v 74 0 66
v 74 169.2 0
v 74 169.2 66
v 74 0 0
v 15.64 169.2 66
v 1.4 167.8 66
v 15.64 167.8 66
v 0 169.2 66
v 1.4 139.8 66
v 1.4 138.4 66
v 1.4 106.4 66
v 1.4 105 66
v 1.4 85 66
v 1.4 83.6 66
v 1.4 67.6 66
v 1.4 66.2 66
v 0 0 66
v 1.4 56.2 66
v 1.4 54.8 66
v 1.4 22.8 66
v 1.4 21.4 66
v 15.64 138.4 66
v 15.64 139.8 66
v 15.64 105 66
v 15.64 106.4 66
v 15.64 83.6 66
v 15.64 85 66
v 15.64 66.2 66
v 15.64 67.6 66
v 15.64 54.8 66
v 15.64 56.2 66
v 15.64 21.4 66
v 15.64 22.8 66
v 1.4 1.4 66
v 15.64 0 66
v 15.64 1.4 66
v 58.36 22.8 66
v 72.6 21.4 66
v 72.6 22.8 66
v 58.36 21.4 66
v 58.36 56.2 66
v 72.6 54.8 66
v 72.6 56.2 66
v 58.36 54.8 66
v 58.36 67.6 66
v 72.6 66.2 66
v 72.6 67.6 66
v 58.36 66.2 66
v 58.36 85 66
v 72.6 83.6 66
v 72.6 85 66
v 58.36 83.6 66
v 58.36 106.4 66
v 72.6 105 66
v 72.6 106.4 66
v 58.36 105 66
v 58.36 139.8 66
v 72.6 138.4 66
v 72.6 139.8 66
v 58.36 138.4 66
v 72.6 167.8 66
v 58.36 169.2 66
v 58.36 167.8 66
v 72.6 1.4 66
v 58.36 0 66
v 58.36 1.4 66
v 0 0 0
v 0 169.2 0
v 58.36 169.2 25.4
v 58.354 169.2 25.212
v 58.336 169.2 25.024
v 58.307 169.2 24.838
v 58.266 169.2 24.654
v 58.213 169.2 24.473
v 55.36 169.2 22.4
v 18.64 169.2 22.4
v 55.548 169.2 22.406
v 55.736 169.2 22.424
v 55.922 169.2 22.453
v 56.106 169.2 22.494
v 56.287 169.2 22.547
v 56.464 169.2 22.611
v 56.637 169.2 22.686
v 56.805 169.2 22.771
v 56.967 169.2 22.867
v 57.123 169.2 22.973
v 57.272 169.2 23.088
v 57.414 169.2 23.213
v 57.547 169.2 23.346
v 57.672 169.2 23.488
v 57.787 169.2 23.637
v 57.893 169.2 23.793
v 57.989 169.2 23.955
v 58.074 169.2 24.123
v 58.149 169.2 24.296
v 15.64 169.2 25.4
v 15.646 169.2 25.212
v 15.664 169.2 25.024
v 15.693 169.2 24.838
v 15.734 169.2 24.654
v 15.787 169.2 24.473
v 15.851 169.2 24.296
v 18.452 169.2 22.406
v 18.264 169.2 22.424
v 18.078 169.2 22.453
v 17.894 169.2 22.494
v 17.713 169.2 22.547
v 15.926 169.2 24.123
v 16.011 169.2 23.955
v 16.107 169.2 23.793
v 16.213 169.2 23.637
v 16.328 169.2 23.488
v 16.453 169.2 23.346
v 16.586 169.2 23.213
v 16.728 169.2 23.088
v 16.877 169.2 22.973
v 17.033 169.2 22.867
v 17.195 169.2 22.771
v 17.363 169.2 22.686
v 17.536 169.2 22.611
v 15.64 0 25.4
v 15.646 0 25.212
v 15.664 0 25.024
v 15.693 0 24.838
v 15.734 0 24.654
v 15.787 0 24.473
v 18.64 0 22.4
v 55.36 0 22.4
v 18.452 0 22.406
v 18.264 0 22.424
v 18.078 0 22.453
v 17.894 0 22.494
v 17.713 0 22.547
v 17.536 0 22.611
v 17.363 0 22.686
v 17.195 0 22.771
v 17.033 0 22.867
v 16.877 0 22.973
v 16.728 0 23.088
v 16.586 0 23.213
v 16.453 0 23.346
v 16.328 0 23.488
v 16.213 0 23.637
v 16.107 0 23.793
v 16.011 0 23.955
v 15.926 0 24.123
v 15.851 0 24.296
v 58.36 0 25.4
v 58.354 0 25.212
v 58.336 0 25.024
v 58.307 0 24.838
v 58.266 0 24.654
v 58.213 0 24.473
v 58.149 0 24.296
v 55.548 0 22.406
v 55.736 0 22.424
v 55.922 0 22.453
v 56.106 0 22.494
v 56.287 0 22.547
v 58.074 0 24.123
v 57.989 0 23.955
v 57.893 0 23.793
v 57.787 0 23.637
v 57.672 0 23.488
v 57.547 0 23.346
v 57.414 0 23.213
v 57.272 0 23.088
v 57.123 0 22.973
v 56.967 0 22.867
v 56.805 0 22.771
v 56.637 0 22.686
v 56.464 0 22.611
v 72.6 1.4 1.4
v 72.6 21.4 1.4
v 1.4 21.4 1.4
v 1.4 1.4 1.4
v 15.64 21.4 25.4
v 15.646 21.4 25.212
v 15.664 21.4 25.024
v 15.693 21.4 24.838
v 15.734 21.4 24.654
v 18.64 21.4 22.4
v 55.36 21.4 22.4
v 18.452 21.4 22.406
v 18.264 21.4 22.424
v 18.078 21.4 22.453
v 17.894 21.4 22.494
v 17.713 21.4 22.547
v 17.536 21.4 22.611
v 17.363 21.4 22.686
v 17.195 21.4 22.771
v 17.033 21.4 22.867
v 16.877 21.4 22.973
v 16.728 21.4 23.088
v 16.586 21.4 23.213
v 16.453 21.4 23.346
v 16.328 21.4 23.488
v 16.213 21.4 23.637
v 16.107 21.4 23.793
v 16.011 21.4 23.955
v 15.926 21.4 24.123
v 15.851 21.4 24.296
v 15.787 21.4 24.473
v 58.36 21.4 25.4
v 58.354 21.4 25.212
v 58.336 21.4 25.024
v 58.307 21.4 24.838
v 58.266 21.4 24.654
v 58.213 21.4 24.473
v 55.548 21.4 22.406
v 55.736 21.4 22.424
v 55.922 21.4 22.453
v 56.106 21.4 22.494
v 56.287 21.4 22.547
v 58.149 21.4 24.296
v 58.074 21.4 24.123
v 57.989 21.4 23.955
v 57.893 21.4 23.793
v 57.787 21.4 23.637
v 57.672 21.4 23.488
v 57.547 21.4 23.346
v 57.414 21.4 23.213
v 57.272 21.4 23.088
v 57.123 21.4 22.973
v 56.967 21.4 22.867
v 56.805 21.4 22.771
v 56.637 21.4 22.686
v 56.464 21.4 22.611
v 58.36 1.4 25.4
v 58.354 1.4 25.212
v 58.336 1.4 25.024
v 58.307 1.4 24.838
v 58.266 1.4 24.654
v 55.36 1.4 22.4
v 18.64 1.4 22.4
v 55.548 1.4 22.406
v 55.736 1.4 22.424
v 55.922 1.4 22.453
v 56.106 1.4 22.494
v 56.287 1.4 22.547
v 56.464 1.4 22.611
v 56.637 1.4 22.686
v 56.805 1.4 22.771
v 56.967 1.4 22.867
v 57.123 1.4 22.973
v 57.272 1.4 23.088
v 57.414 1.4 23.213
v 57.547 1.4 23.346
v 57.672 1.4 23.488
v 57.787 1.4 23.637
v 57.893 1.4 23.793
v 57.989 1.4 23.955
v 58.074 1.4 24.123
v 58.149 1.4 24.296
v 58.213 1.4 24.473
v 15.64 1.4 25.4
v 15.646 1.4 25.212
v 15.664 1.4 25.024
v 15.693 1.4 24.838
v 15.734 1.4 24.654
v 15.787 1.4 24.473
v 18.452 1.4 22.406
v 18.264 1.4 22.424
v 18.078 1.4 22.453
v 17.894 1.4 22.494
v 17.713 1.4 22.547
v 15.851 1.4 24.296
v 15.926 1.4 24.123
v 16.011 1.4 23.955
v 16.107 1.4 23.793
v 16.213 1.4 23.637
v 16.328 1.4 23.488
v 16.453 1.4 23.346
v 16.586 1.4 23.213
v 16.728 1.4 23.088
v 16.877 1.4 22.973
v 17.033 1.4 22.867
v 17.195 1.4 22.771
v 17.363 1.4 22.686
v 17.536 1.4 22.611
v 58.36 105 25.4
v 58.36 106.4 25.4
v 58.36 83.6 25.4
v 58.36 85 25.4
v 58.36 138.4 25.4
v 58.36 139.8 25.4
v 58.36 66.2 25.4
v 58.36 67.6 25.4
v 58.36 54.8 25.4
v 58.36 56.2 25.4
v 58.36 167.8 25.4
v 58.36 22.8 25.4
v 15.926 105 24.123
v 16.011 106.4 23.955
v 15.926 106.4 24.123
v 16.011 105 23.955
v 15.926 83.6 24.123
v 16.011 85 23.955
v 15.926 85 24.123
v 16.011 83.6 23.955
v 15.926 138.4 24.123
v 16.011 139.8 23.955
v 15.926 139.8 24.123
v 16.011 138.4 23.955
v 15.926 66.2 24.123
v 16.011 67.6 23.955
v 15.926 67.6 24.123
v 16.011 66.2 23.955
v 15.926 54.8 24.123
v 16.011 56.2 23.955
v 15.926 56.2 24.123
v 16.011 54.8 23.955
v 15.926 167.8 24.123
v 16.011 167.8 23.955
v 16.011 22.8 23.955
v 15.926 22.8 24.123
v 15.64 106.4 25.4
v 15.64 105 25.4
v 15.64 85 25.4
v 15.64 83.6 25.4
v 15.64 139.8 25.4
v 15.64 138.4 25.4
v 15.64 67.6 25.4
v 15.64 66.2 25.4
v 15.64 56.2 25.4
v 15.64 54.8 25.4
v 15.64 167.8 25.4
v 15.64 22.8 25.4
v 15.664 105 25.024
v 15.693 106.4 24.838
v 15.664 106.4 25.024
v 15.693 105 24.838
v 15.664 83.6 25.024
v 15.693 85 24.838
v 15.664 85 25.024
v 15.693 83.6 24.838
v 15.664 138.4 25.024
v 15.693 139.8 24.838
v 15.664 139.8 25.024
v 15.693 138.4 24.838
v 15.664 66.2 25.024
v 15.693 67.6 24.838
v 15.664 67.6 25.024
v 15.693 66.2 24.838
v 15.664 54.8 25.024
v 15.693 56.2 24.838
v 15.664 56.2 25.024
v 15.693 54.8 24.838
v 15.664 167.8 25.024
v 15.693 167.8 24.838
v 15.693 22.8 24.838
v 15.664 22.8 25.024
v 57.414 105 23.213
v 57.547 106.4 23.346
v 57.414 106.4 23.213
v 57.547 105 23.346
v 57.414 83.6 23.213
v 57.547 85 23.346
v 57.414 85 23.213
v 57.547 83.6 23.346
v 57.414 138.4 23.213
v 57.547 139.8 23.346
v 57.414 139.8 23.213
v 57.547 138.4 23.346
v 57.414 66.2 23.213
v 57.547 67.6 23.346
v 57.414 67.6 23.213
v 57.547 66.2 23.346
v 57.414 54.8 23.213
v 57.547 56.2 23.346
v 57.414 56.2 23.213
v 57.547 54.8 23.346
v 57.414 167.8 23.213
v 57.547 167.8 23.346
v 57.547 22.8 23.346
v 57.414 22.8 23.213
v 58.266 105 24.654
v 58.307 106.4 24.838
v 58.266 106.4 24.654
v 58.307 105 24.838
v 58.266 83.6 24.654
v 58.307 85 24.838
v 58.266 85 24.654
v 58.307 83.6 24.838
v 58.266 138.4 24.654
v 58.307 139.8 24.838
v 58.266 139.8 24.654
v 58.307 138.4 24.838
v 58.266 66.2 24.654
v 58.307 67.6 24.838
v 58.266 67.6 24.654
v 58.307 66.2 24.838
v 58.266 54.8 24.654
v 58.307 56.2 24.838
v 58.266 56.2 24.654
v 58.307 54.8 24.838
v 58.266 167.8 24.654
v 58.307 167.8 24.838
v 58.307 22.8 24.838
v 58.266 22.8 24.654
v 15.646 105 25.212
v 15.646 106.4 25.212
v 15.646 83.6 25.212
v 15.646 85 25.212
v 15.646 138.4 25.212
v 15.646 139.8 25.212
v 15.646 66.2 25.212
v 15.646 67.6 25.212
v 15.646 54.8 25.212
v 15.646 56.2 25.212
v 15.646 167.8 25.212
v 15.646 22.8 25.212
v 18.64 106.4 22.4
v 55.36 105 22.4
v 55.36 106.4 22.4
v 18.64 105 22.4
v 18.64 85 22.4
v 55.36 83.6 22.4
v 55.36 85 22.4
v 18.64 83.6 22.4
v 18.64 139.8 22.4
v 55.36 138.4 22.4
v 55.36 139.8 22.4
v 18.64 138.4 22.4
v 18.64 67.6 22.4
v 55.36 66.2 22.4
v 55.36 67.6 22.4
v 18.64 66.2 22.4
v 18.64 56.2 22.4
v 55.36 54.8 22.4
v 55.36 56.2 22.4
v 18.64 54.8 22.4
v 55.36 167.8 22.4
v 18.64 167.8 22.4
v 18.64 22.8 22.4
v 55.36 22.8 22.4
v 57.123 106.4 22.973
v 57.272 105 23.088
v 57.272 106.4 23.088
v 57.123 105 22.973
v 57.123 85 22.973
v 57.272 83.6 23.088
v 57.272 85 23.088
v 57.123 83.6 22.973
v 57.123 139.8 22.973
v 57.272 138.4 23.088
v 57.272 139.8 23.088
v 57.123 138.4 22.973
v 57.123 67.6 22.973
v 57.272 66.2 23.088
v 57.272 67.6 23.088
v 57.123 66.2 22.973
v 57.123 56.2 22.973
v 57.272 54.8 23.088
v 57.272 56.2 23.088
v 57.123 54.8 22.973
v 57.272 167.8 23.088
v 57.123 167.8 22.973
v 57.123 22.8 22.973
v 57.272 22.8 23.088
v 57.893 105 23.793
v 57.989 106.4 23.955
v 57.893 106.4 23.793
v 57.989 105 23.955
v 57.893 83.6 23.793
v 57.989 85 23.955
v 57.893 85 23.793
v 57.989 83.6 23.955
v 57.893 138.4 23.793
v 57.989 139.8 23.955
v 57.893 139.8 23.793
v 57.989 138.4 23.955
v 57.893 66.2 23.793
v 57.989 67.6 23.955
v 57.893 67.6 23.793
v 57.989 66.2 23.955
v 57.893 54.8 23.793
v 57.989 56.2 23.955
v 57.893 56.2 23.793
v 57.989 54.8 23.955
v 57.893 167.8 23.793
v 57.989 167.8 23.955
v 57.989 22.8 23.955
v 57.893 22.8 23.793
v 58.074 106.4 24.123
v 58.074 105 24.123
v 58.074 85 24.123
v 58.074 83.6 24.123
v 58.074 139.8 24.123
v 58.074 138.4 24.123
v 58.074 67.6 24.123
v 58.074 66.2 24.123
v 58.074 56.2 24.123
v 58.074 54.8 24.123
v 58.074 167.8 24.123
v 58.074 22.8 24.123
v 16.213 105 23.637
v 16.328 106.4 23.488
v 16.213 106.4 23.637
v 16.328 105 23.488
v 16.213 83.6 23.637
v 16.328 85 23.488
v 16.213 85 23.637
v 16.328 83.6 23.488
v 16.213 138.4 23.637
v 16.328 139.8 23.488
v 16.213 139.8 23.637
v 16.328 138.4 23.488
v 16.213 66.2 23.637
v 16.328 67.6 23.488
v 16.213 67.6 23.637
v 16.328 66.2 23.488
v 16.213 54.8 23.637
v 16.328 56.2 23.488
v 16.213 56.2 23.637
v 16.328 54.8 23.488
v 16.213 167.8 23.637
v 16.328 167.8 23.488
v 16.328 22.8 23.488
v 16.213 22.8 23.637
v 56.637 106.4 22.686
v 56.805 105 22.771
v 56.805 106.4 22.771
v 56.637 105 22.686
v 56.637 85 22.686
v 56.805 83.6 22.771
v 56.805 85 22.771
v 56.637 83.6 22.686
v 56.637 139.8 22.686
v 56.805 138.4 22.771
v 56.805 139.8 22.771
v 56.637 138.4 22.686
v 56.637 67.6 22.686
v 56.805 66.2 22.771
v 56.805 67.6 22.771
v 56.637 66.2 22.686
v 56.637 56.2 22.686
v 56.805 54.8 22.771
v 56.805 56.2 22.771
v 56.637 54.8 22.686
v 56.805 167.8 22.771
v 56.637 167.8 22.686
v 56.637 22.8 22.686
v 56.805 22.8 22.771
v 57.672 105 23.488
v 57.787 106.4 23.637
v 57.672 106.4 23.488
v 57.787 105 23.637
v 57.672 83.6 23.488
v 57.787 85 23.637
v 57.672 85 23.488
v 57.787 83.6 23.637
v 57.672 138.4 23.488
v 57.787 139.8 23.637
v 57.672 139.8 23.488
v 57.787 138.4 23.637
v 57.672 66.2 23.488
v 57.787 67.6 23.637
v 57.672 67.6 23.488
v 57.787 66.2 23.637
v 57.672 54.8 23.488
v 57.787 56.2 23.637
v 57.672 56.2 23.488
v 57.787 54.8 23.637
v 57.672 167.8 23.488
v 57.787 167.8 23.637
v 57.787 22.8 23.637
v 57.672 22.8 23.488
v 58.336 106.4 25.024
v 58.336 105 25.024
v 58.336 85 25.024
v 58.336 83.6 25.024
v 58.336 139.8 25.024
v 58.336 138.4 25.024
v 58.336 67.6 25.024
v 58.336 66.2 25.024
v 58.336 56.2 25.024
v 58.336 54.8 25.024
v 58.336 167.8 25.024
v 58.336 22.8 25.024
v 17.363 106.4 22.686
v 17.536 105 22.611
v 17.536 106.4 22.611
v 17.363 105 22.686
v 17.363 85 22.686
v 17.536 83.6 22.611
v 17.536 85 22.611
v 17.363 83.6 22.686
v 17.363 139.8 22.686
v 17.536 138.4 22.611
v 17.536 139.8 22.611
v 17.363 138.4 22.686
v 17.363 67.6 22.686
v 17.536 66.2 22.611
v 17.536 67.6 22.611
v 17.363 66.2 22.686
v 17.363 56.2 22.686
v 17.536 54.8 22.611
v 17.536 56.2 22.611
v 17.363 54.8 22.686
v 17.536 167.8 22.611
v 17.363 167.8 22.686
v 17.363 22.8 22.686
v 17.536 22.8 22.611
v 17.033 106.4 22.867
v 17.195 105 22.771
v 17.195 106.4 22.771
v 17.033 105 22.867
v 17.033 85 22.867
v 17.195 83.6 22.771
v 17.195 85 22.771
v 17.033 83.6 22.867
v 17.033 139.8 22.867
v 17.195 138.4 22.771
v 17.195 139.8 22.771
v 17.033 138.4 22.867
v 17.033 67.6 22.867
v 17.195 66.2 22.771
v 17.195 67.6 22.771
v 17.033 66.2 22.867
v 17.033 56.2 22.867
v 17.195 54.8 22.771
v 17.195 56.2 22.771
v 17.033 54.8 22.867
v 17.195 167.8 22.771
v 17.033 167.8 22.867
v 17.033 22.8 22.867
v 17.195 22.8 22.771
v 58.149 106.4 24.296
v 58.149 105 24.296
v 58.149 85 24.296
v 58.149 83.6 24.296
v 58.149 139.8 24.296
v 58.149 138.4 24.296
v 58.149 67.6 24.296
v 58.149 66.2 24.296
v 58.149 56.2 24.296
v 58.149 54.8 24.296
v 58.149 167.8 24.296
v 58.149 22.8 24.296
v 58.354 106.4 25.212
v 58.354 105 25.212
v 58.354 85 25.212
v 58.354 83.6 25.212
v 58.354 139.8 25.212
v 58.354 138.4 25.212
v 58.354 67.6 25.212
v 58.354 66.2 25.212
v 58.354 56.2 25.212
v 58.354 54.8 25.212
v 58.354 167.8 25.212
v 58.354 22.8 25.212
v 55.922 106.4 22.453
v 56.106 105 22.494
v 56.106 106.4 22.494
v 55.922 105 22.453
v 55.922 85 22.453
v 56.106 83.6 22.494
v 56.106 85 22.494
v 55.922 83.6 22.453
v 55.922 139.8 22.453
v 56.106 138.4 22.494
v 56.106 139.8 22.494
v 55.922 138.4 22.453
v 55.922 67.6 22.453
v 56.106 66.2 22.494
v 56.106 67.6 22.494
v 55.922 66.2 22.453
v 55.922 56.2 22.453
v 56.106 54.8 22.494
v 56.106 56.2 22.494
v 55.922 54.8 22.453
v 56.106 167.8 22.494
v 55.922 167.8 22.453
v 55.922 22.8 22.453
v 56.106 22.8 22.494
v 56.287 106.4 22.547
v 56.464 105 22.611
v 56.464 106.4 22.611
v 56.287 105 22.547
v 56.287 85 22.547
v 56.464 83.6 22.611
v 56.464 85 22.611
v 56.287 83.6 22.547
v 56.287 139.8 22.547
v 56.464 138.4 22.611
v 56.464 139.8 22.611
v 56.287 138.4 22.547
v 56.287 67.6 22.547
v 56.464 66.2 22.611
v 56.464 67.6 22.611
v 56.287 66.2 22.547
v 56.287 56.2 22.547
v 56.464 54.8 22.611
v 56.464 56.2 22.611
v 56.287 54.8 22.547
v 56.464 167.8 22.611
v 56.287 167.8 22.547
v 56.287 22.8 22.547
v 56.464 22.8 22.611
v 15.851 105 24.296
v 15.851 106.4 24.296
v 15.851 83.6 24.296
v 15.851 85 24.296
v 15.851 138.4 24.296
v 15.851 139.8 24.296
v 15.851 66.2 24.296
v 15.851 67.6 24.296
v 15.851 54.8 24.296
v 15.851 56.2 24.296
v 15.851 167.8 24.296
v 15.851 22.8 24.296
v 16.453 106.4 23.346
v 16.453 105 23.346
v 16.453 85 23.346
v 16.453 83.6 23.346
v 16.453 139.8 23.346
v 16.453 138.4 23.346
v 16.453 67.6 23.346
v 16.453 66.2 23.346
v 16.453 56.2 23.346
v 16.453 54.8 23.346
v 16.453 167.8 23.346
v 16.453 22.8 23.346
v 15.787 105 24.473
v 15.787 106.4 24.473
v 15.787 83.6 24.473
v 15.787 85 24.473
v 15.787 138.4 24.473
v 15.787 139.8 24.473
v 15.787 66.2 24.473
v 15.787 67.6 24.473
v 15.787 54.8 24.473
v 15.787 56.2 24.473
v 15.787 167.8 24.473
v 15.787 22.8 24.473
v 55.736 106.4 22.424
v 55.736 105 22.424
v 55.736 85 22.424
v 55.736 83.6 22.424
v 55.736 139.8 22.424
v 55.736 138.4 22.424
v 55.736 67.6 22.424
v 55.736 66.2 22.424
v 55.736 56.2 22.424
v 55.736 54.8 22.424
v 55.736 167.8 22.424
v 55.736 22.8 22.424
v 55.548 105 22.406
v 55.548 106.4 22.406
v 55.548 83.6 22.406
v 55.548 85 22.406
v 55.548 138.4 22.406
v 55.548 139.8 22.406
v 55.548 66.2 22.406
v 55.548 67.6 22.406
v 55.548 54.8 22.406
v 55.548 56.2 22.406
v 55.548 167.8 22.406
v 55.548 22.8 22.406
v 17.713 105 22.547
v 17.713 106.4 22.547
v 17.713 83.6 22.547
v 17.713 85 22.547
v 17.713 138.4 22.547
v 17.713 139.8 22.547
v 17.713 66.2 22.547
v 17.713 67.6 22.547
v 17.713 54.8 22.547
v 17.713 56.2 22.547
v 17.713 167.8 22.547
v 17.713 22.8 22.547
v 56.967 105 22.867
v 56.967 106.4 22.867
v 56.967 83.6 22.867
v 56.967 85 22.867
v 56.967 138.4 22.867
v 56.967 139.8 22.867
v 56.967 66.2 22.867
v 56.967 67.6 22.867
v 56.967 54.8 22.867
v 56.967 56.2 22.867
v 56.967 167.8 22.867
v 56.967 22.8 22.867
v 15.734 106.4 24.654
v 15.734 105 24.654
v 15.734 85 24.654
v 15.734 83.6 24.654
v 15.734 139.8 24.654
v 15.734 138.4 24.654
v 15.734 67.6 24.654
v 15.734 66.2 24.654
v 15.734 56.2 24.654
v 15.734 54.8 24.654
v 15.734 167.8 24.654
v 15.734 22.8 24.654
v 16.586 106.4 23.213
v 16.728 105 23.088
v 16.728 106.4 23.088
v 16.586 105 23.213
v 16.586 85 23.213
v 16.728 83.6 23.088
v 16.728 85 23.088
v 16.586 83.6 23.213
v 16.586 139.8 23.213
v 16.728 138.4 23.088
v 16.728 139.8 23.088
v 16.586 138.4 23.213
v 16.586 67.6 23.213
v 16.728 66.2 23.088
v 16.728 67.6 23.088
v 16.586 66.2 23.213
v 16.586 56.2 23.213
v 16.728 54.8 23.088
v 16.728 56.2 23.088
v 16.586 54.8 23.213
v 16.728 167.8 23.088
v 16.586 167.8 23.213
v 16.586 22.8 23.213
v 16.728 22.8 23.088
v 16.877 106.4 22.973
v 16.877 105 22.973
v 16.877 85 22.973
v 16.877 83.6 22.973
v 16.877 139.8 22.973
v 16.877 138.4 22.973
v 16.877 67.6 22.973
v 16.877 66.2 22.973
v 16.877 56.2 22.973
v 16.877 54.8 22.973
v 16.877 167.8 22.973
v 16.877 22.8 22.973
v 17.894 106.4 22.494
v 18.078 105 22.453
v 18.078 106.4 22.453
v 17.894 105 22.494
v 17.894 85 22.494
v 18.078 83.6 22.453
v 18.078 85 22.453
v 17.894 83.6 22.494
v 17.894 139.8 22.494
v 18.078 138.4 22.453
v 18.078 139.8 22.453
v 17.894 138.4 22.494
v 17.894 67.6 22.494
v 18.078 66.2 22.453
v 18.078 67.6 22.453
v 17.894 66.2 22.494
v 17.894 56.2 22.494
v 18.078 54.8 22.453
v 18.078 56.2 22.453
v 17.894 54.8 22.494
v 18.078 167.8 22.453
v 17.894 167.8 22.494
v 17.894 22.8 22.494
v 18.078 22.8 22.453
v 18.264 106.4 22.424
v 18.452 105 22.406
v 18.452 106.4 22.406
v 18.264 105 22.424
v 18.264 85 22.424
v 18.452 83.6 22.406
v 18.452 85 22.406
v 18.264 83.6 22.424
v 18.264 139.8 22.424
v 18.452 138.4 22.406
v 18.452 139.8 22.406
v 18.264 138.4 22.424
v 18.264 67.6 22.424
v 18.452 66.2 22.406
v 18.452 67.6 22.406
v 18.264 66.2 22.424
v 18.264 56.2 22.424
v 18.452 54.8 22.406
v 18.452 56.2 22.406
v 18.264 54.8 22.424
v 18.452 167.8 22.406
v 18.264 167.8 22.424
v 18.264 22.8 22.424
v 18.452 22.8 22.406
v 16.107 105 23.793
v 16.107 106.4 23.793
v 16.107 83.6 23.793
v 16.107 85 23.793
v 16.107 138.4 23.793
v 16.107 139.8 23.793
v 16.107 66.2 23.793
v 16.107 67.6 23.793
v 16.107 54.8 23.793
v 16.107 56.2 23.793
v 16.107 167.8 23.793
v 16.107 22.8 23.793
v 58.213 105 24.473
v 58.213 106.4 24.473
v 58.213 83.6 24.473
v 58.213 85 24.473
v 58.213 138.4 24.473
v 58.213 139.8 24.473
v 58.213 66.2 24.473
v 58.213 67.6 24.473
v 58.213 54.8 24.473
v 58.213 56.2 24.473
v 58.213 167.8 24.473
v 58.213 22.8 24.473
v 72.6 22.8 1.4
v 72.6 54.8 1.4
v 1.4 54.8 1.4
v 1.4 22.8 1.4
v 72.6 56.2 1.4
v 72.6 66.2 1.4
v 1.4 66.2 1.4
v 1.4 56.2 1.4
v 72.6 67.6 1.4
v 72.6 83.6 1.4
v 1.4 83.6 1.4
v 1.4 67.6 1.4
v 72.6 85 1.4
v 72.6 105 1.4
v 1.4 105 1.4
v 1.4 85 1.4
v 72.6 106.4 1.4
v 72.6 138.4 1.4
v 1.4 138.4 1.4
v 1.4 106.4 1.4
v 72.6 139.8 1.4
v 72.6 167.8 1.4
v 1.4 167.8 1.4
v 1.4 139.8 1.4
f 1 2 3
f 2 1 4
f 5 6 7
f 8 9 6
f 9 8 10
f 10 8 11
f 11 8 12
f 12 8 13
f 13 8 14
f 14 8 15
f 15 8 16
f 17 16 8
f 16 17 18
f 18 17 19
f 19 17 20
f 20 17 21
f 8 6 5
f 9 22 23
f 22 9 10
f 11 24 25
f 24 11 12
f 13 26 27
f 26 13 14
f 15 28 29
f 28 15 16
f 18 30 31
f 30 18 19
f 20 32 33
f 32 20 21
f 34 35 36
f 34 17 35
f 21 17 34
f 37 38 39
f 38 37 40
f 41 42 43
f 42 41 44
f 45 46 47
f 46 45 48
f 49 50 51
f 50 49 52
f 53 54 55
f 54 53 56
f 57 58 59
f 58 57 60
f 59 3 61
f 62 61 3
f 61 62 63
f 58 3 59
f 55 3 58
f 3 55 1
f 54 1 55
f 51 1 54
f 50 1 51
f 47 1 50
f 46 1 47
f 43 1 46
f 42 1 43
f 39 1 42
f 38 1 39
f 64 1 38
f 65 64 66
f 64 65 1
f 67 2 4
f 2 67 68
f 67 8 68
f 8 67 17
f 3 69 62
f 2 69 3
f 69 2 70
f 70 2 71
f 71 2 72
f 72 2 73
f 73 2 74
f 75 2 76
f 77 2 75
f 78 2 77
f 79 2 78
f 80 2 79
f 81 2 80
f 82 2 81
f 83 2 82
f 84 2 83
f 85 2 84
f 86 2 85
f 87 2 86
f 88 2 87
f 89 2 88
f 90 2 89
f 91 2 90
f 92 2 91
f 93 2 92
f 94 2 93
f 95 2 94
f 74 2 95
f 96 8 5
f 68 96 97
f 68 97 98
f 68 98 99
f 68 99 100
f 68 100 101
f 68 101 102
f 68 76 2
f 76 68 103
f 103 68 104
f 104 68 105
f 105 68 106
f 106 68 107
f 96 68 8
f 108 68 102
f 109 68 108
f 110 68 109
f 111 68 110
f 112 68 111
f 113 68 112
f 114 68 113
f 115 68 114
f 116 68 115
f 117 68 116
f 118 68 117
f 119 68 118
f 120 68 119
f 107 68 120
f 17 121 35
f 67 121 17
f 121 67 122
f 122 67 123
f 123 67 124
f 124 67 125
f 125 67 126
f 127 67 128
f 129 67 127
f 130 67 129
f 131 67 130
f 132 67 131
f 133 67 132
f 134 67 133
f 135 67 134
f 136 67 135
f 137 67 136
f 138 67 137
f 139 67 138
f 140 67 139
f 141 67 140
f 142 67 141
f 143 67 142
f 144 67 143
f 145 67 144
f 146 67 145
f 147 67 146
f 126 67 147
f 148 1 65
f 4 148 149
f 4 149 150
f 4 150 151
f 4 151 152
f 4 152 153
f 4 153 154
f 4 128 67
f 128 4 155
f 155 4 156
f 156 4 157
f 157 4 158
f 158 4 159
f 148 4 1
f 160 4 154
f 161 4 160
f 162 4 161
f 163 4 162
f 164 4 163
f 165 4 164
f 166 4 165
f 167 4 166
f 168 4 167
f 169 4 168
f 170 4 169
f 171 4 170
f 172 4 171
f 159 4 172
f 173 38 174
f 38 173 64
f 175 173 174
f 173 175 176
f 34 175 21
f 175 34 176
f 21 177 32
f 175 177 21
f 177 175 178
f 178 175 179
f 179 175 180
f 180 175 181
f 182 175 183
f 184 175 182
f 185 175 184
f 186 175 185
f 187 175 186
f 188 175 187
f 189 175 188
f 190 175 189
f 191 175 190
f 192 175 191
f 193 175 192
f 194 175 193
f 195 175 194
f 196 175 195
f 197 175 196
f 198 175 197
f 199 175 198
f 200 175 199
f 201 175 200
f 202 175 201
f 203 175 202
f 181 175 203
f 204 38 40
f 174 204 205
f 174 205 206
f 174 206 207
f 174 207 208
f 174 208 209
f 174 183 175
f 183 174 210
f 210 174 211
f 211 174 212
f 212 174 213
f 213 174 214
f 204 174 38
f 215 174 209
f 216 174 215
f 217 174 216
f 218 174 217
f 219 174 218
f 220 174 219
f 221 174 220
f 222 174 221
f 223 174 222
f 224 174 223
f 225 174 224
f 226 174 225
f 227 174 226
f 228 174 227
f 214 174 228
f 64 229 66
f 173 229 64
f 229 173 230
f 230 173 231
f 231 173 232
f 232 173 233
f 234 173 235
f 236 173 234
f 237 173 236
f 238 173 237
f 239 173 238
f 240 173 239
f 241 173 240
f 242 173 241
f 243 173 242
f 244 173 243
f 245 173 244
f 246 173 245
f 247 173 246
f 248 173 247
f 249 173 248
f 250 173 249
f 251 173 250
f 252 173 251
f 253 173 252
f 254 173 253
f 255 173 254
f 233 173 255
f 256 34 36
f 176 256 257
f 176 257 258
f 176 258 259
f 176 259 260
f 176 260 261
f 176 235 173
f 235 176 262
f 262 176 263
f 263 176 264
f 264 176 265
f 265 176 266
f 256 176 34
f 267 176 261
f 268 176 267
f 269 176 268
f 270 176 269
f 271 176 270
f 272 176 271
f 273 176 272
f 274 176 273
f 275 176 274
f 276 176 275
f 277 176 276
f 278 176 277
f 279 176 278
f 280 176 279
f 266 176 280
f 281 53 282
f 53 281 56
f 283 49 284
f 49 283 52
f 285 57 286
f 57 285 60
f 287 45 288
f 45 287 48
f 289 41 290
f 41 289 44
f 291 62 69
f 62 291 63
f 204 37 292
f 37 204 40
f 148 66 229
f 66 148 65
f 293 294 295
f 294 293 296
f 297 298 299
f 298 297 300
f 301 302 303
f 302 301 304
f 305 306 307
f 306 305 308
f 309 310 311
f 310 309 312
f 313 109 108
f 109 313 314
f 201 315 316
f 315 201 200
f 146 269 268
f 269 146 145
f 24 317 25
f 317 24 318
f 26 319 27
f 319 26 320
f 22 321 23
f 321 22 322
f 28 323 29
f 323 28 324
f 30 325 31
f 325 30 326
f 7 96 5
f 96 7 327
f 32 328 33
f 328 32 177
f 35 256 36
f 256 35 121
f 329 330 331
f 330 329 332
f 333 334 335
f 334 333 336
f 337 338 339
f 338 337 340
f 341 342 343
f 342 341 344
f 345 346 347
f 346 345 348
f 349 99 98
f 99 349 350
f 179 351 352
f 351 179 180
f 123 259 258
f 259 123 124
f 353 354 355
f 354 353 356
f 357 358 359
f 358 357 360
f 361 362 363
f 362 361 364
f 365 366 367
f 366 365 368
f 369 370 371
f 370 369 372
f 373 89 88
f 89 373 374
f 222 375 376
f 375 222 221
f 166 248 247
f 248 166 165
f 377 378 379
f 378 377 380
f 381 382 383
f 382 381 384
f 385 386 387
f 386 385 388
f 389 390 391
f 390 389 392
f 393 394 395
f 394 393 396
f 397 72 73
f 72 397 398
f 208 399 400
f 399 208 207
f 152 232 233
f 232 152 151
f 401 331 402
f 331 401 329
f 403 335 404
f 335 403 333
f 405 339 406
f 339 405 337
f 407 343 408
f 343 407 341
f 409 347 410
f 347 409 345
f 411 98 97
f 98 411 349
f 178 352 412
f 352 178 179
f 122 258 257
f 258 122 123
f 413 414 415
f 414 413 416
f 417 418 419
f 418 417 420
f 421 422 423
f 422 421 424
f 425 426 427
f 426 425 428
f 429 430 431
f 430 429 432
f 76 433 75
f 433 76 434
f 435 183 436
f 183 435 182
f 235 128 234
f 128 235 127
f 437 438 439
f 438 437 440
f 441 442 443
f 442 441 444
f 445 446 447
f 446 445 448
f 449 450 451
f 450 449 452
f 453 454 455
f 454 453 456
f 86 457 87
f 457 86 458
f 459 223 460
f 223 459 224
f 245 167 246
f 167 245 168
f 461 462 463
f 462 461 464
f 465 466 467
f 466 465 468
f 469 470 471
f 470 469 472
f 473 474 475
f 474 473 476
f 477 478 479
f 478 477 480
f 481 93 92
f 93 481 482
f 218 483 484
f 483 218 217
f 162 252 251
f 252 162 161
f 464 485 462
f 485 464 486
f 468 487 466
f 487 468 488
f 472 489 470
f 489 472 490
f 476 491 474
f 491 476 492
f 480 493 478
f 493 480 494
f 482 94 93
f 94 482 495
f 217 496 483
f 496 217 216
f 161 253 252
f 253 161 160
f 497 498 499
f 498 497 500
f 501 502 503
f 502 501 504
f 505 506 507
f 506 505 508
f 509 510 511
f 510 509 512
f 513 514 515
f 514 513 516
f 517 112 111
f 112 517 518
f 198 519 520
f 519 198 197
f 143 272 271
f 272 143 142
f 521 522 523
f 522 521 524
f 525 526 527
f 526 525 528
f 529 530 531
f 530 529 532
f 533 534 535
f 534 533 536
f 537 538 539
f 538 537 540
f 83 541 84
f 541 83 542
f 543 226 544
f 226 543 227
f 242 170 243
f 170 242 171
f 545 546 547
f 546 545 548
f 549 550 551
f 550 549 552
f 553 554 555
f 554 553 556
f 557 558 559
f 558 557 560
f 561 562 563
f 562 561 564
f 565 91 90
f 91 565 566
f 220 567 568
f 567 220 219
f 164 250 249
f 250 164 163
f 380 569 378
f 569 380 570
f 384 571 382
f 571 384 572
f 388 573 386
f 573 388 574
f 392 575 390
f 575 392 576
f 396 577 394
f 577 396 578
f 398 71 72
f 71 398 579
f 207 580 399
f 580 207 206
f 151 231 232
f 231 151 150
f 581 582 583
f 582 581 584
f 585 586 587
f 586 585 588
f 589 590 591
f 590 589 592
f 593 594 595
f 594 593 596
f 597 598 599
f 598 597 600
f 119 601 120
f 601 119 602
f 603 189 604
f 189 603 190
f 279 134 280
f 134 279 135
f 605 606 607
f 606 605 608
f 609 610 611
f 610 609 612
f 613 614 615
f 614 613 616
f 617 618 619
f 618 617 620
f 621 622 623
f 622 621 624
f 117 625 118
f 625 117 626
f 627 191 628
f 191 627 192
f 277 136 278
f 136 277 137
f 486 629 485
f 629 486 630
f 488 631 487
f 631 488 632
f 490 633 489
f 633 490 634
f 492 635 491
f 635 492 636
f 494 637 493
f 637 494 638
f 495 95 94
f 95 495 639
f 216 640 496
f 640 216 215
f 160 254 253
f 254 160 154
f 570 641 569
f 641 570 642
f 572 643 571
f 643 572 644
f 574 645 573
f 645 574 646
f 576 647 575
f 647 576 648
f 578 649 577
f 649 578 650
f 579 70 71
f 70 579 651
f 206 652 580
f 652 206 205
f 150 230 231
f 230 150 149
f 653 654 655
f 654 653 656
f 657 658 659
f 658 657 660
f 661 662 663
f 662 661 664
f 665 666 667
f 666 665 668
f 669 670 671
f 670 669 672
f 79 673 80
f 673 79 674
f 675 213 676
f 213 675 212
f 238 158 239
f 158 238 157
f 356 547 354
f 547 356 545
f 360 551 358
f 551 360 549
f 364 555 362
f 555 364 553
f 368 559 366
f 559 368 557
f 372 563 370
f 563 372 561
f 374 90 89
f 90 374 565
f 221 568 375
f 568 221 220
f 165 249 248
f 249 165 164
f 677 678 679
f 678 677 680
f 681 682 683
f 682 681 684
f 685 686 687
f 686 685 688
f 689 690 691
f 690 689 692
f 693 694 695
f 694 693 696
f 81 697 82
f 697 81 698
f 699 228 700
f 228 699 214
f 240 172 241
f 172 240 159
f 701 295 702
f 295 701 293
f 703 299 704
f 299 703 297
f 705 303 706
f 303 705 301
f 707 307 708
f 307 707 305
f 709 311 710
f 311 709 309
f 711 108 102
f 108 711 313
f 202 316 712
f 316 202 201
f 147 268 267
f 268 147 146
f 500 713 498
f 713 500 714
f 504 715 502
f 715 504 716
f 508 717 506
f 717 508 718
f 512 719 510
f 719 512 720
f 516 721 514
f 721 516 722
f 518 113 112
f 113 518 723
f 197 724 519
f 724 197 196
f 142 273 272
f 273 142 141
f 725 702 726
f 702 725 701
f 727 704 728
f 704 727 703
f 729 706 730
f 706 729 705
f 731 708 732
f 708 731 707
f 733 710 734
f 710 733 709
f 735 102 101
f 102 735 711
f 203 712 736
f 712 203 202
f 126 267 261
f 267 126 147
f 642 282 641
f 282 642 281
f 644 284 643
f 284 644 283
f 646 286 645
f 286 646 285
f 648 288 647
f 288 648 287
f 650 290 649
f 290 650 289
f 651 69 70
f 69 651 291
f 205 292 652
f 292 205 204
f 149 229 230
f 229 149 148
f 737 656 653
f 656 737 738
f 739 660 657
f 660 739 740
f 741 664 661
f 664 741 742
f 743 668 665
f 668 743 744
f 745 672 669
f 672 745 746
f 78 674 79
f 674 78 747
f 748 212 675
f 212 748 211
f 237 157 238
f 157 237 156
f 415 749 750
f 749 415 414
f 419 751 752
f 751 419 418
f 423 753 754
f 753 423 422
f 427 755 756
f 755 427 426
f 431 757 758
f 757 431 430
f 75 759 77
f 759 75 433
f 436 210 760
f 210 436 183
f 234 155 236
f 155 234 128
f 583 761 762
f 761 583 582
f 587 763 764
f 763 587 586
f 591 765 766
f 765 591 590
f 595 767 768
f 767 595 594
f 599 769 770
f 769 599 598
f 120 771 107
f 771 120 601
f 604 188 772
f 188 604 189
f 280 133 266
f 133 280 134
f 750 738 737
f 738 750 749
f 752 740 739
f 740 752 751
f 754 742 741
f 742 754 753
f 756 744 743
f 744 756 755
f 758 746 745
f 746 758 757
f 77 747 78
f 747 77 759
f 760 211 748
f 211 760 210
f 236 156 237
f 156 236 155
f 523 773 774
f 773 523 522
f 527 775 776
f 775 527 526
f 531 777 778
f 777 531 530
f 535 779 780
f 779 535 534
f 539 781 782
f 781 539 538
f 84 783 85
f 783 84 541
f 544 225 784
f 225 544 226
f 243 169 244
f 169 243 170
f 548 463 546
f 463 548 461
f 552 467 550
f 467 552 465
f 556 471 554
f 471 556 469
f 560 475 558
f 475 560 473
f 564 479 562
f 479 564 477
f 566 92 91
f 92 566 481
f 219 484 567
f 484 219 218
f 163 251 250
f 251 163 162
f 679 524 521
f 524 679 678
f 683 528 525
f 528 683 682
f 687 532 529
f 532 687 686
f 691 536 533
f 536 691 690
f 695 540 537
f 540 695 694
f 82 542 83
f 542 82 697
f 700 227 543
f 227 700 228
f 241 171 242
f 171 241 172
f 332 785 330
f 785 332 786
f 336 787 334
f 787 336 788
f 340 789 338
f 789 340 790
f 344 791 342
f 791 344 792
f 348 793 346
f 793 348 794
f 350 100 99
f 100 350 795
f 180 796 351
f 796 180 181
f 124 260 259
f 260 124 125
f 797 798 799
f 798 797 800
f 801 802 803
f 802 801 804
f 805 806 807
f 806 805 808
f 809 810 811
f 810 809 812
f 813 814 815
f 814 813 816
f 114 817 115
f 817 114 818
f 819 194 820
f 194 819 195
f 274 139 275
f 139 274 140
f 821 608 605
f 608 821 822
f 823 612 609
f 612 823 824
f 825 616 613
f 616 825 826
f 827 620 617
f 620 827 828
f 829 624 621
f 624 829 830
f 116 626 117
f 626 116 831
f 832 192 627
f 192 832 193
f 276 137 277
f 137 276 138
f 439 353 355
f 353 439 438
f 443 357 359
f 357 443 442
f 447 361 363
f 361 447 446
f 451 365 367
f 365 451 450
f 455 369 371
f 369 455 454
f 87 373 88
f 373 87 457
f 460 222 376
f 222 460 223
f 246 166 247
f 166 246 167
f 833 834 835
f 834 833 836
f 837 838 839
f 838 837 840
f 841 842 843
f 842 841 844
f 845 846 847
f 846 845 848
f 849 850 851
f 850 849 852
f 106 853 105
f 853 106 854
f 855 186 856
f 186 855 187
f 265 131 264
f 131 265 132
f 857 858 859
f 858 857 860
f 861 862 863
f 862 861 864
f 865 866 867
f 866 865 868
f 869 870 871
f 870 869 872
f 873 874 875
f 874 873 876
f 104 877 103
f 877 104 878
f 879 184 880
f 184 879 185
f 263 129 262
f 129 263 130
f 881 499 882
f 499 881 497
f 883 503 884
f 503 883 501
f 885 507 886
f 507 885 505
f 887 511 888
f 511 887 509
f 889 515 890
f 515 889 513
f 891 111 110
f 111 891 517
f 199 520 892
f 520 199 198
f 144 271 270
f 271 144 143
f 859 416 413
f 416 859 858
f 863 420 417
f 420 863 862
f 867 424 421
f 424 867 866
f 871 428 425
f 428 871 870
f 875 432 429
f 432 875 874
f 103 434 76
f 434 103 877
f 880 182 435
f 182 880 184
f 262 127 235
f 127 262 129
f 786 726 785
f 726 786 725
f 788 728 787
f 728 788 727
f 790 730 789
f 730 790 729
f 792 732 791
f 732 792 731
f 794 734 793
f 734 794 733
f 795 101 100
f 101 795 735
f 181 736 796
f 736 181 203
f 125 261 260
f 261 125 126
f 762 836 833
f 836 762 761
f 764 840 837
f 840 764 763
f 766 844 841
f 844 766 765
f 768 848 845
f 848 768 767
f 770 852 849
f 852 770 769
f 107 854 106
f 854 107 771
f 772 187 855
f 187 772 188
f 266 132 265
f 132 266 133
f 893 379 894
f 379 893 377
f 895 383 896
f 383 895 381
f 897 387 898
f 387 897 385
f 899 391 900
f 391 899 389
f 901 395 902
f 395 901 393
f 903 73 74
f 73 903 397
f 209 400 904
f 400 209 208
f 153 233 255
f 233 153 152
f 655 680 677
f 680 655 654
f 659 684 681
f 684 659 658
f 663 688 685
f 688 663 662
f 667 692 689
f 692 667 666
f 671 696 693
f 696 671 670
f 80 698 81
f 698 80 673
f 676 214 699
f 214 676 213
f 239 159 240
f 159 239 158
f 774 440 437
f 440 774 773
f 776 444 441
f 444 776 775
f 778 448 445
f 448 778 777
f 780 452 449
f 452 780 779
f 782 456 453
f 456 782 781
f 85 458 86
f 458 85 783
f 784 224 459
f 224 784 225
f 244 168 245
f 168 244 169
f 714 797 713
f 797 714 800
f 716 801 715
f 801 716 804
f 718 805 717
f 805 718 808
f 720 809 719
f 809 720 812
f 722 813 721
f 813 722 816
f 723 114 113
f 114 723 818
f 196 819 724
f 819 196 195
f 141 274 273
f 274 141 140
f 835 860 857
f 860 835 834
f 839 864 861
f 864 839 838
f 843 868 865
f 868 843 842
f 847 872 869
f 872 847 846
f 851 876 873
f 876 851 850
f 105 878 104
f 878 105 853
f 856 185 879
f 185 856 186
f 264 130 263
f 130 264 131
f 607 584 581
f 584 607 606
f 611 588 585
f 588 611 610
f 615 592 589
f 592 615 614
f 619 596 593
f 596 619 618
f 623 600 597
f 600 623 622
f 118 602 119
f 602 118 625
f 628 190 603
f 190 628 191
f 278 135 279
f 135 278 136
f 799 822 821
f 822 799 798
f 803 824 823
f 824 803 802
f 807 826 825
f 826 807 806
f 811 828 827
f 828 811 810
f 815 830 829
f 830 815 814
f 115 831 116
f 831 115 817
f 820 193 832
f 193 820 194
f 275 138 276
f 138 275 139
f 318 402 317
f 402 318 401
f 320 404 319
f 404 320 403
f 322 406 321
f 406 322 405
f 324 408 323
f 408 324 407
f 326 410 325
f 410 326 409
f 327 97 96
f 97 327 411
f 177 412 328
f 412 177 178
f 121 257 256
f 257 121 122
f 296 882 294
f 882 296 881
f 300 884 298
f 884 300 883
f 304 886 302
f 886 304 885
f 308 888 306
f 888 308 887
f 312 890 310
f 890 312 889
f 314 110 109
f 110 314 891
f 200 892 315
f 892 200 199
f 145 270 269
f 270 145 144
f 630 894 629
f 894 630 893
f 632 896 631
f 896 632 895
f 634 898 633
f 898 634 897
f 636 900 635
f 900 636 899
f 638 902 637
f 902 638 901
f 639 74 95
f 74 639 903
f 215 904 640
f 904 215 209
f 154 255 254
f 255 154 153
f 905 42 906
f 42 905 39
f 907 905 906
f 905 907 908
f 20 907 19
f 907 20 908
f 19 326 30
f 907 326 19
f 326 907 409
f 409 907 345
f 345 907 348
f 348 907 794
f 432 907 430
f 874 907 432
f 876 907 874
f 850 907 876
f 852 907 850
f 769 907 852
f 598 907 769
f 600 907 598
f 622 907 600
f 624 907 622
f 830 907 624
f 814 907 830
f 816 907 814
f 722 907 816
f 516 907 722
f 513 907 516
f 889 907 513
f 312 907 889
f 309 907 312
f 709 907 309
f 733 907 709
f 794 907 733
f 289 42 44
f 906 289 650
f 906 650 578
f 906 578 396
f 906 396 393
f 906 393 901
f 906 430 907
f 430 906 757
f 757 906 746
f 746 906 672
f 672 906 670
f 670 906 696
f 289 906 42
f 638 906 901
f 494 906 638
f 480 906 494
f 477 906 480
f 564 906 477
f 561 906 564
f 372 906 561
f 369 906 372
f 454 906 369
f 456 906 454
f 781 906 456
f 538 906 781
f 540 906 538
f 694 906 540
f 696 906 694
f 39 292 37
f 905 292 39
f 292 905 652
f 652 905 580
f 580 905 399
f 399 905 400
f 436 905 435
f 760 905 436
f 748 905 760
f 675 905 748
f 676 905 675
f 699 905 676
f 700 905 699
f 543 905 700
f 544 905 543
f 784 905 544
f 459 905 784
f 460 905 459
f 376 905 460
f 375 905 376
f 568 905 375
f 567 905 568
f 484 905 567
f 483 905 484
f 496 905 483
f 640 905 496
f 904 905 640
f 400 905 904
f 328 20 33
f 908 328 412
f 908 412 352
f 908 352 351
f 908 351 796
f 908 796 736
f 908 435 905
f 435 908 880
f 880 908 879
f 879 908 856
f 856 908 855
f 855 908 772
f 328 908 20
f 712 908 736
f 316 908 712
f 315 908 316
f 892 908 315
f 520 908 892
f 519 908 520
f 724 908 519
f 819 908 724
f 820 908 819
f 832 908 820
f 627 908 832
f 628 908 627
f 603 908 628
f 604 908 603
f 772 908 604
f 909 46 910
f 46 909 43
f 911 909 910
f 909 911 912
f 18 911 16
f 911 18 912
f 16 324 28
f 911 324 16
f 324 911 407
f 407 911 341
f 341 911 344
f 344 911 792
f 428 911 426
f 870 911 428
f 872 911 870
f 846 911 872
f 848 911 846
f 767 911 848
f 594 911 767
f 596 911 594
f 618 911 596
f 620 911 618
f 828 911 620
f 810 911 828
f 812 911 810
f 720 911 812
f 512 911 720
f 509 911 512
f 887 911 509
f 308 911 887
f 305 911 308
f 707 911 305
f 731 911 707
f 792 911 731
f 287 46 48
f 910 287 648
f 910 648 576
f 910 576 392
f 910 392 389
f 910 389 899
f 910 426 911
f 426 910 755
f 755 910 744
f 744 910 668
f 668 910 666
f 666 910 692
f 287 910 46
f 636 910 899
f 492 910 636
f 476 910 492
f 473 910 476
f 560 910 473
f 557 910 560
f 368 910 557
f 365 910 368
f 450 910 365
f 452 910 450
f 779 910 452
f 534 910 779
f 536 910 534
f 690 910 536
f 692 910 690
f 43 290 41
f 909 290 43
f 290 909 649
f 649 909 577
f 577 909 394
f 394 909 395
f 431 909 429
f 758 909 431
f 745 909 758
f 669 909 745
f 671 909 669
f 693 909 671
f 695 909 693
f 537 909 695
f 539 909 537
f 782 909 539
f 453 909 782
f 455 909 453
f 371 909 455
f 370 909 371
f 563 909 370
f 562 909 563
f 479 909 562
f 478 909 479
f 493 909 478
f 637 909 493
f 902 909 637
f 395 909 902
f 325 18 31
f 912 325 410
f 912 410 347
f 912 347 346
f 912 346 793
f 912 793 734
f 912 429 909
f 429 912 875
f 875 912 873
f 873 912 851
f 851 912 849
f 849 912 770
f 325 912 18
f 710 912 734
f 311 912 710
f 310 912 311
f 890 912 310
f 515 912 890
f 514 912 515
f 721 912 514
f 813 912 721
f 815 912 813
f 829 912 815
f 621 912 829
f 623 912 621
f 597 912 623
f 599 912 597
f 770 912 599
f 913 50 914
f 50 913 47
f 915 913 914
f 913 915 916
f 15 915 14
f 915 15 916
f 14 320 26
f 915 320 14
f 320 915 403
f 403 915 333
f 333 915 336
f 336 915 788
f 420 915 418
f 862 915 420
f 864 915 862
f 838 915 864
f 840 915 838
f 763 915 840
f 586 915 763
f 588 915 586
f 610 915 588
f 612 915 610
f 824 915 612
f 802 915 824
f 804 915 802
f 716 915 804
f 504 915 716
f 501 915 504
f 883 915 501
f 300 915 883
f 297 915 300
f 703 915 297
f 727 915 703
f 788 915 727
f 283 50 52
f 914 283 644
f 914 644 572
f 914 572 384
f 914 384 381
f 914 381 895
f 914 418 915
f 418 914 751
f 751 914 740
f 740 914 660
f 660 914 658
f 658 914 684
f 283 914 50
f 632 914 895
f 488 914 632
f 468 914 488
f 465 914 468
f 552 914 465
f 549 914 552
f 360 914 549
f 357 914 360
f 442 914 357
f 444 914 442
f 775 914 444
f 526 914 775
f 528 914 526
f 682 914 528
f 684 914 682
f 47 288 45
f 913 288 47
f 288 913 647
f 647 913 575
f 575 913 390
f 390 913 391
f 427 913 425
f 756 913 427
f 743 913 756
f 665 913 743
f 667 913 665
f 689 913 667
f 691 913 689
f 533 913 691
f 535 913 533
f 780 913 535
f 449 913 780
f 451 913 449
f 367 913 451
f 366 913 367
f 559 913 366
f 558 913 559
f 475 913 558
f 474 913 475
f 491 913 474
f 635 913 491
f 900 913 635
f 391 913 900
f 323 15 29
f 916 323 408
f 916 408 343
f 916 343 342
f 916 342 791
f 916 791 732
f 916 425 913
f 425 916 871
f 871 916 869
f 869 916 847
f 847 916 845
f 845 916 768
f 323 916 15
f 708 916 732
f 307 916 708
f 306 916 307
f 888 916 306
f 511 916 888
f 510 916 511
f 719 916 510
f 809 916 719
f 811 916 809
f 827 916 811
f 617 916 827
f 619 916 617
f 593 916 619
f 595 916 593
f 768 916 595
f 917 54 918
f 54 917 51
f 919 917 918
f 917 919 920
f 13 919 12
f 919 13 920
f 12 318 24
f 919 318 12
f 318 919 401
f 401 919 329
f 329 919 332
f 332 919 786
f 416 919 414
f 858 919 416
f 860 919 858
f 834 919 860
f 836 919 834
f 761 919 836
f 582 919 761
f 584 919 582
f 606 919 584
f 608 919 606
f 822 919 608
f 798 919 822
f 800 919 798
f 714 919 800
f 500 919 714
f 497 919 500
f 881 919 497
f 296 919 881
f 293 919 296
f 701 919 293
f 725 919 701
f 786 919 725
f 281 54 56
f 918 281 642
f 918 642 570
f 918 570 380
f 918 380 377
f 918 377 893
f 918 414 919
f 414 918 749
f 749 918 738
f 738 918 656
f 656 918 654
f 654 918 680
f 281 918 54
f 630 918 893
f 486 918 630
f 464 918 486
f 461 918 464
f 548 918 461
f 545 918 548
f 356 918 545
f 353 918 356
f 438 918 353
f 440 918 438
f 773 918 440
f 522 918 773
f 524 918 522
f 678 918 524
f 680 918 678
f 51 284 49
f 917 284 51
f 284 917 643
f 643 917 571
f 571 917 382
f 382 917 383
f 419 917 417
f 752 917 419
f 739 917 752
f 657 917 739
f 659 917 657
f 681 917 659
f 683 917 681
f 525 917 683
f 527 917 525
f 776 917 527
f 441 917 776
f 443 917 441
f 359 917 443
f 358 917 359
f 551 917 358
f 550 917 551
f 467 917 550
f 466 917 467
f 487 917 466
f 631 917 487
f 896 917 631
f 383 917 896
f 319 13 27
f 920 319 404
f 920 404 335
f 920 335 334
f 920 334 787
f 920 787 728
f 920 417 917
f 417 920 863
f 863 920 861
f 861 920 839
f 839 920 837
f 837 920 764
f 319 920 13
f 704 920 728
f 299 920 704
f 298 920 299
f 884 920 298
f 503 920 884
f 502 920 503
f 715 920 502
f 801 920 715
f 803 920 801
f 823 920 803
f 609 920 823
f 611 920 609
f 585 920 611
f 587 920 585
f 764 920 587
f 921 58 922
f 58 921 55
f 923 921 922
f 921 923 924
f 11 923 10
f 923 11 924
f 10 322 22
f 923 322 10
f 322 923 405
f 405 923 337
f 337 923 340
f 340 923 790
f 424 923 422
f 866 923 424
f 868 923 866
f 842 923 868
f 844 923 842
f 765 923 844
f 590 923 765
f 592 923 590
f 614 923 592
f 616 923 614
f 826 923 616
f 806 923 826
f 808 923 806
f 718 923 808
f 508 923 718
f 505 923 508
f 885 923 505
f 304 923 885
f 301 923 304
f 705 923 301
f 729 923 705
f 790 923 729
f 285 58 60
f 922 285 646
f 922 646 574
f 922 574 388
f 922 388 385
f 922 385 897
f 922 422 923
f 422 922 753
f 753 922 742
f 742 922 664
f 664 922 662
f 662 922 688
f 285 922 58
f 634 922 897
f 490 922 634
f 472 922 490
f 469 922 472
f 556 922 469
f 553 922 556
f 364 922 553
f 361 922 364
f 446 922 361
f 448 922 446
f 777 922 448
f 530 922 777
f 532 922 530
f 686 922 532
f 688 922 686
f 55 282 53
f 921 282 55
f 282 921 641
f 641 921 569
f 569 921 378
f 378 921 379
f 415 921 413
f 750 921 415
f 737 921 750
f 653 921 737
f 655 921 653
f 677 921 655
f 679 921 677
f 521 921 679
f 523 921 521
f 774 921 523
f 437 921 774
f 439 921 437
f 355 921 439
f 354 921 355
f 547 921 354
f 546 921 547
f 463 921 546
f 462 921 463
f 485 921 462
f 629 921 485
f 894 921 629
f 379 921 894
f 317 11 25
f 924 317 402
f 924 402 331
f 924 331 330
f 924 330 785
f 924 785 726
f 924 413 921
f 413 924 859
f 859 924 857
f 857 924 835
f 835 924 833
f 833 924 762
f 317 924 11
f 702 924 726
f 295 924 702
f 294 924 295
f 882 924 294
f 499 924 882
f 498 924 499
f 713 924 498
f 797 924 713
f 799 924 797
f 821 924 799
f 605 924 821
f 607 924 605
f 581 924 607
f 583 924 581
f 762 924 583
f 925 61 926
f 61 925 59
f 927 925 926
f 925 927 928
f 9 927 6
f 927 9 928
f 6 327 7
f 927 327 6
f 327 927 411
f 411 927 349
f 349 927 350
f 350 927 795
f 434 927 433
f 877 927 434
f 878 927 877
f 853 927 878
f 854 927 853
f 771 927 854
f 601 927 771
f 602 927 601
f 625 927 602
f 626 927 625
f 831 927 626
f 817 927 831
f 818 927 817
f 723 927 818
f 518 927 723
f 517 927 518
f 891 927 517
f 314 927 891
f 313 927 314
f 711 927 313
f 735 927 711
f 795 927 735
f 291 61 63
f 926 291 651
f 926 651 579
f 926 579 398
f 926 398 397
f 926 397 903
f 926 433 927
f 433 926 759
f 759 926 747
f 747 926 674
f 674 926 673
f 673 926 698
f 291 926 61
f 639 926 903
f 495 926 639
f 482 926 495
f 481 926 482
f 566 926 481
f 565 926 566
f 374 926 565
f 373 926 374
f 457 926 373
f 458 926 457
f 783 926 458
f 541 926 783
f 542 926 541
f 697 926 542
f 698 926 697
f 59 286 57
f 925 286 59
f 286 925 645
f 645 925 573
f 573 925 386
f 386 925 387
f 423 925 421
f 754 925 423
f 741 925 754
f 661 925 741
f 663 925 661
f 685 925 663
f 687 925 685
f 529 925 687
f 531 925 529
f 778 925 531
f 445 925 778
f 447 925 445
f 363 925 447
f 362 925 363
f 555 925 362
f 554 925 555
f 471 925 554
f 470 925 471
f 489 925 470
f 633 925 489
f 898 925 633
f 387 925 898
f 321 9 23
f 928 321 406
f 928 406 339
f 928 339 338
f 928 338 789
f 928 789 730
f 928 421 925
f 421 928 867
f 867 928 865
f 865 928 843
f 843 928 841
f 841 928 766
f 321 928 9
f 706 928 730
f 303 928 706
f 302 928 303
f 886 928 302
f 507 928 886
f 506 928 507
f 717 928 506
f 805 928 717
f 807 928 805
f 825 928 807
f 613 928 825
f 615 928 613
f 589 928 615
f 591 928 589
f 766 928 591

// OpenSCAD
include <boardgame_insert_toolkit_lib.2.scad>;

// determines whether lids are output.
g_b_print_lid = true;

// determines whether boxes are output.
g_b_print_box = true; 

// Focus on one box
g_isolated_print_box = ""; 

// Used to visualize how all of the boxes fit together. 
g_b_visualization = false;          
        
// this is the outer wall thickness. 
//Default = 1.5mm
g_wall_thickness = 1.4;

// The tolerance value is extra space put between planes of the lid and box that fit together.
// Increase the tolerance to loosen the fit and decrease it to tighten it.
//
// Note that the tolerance is applied exclusively to the lid.
// So if the lid is too tight or too loose, change this value ( up for looser fit, down for tighter fit ) and 
// you only need to reprint the lid.
// 
// The exception is the stackable box, where the bottom of the box is the lid of the box below,
// in which case the tolerance also affects that box bottom.
//
g_tolerance = 0.15;

// This adjusts the position of the lid detents downward. 
// The larger the value, the bigger the gap between the lid and the box.
g_tolerance_detents_pos = 0.1;

aw_card_width = 44.0;
aw_card_height = 68.0;

aw_sleeve_factor = 2.0;

aw_base_player_cards_size = 10 * aw_sleeve_factor;
aw_base_exp_cards_size = 16 * aw_sleeve_factor;
aw_hh_demon_cards_size = 5 * aw_sleeve_factor;
aw_hh_exp_cards_size = 8 * aw_sleeve_factor;
aw_temples_player_cards_size = 10 * aw_sleeve_factor;
aw_temples_exp_cards_size = 16 * aw_sleeve_factor;
aw_german_cards_size = 24 + 4;

aw_box_x = 74.0;

// 8 * 1.5 + 20 + 32 + 10 + 16 + 20 + 32 + 28 = 170
aw_box_y =
  g_wall_thickness +
  aw_base_player_cards_size +
  g_wall_thickness +
  aw_base_exp_cards_size +
  g_wall_thickness +
  aw_hh_demon_cards_size +
  g_wall_thickness +
  aw_hh_exp_cards_size +
  g_wall_thickness +
  aw_temples_player_cards_size +
  g_wall_thickness +
  aw_temples_exp_cards_size +
  g_wall_thickness +
  aw_german_cards_size +
  g_wall_thickness;

aw_box_z = 66.0;

data =
  [
    [
      "hex tile box",
      [
        [ BOX_SIZE_XYZ, [aw_box_x, aw_box_y, aw_box_z] ],
        [ BOX_NO_LID_B, t],
        // Base player
        [
          BOX_COMPONENT,
          [
            [ CMP_NUM_COMPARTMENTS_XY, [1, 1] ],
            [
              CMP_COMPARTMENT_SIZE_XYZ,
              [
                aw_box_x - 2 * g_wall_thickness,
                aw_base_player_cards_size,
                aw_box_z - 1 * g_wall_thickness
              ]
            ],
            [ POSITION_XY, [ CENTER, 0 ] ],
            [ CMP_CUTOUT_SIDES_4B, [ t, f, f, f ] ],
            [ CMP_CUTOUT_DEPTH_PCT, 0 ],
            [ CMP_CUTOUT_WIDTH_PCT, 60 ],
            [ CMP_CUTOUT_HEIGHT_PCT, 60 ],
          ]
        ],
        // Base exp
        [
          BOX_COMPONENT,
          [
            [ CMP_NUM_COMPARTMENTS_XY, [1, 1] ],
            [
              CMP_COMPARTMENT_SIZE_XYZ,
              [
                aw_box_x - 2 * g_wall_thickness,
                aw_base_exp_cards_size,
                aw_box_z - 1 * g_wall_thickness
              ]
            ],
            [ POSITION_XY,
              [
                CENTER,
                aw_base_player_cards_size +
                  g_wall_thickness
              ]
            ],
            [ CMP_CUTOUT_SIDES_4B, [ t, f, f, f ] ],
            [ CMP_CUTOUT_DEPTH_PCT, 0 ],
            [ CMP_CUTOUT_WIDTH_PCT, 60 ],
            [ CMP_CUTOUT_HEIGHT_PCT, 60 ],
          ]
        ],                            
        // H&H demon
        [
          BOX_COMPONENT,
          [
            [ CMP_NUM_COMPARTMENTS_XY, [1, 1] ],
            [
              CMP_COMPARTMENT_SIZE_XYZ,
              [
                aw_box_x - 2 * g_wall_thickness,
                aw_hh_demon_cards_size,
                aw_box_z - 1 * g_wall_thickness
              ]
            ],
            [ POSITION_XY,
              [
                CENTER,
                aw_base_player_cards_size +
                  g_wall_thickness +
                  aw_base_exp_cards_size +
                  g_wall_thickness
              ]
            ],
            [ CMP_CUTOUT_SIDES_4B, [ t, f, f, f ] ],
            [ CMP_CUTOUT_DEPTH_PCT, 0 ],
            [ CMP_CUTOUT_WIDTH_PCT, 60 ],
            [ CMP_CUTOUT_HEIGHT_PCT, 60 ],
          ]
        ],                            
        // H&H exp
        [
          BOX_COMPONENT,
          [
            [ CMP_NUM_COMPARTMENTS_XY, [1, 1] ],
            [
              CMP_COMPARTMENT_SIZE_XYZ,
              [
                aw_box_x - 2 * g_wall_thickness,
                aw_hh_exp_cards_size,
                aw_box_z - 1 * g_wall_thickness
              ]
            ],
            [ POSITION_XY,
              [
                CENTER,
                aw_base_player_cards_size +
                  g_wall_thickness +
                  aw_base_exp_cards_size +
                  g_wall_thickness +
                  aw_hh_demon_cards_size +
                  g_wall_thickness
              ]
            ],
            [ CMP_CUTOUT_SIDES_4B, [ t, f, f, f ] ],
            [ CMP_CUTOUT_DEPTH_PCT, 0 ],
            [ CMP_CUTOUT_WIDTH_PCT, 60 ],
            [ CMP_CUTOUT_HEIGHT_PCT, 60 ],
          ]
        ],                            
        // Temples player
        [
          BOX_COMPONENT,
          [
            [ CMP_NUM_COMPARTMENTS_XY, [1, 1] ],
            [
              CMP_COMPARTMENT_SIZE_XYZ,
              [
                aw_box_x - 2 * g_wall_thickness,
                aw_temples_player_cards_size,
                aw_box_z - 1 * g_wall_thickness
              ]
            ],
            [ POSITION_XY,
              [
                CENTER,
                aw_base_player_cards_size +
                  g_wall_thickness +
                  aw_base_exp_cards_size +
                  g_wall_thickness +
                  aw_hh_demon_cards_size +
                  g_wall_thickness +
                  aw_hh_exp_cards_size +
                  g_wall_thickness
              ]
            ],
            [ CMP_CUTOUT_SIDES_4B, [ t, f, f, f ] ],
            [ CMP_CUTOUT_DEPTH_PCT, 0 ],
            [ CMP_CUTOUT_WIDTH_PCT, 60 ],
            [ CMP_CUTOUT_HEIGHT_PCT, 60 ],
          ]
        ],                            
        // Temples exp
        [
          BOX_COMPONENT,
          [
            [ CMP_NUM_COMPARTMENTS_XY, [1, 1] ],
            [
              CMP_COMPARTMENT_SIZE_XYZ,
              [
                aw_box_x - 2 * g_wall_thickness,
                aw_temples_exp_cards_size,
                aw_box_z - 1 * g_wall_thickness
              ]
            ],
            [ POSITION_XY,
              [
                CENTER,
                aw_base_player_cards_size +
                  g_wall_thickness +
                  aw_base_exp_cards_size +
                  g_wall_thickness +
                  aw_hh_demon_cards_size +
                  g_wall_thickness +
                  aw_hh_exp_cards_size +
                  g_wall_thickness +
                  aw_temples_player_cards_size +
                  g_wall_thickness
              ]
            ],
            [ CMP_CUTOUT_SIDES_4B, [ t, f, f, f ] ],
            [ CMP_CUTOUT_DEPTH_PCT, 0 ],
            [ CMP_CUTOUT_WIDTH_PCT, 60 ],
            [ CMP_CUTOUT_HEIGHT_PCT, 60 ],
          ]
        ],                            
        // Extra/German cards
        [
          BOX_COMPONENT,
          [
            [ CMP_NUM_COMPARTMENTS_XY, [1, 1] ],
            [
              CMP_COMPARTMENT_SIZE_XYZ,
              [
                aw_box_x - 2 * g_wall_thickness,
                aw_german_cards_size,
                aw_box_z - 1 * g_wall_thickness
              ]
            ],
            [ POSITION_XY,
              [
                CENTER,
                aw_base_player_cards_size +
                  g_wall_thickness +
                  aw_base_exp_cards_size +
                  g_wall_thickness +
                  aw_hh_demon_cards_size +
                  g_wall_thickness +
                  aw_hh_exp_cards_size +
                  g_wall_thickness +
                  aw_temples_player_cards_size +
                  g_wall_thickness +
                  aw_temples_exp_cards_size +
                  g_wall_thickness
              ]
            ],
            [ CMP_CUTOUT_SIDES_4B, [ t, f, f, f ] ],
            [ CMP_CUTOUT_DEPTH_PCT, 0 ],
            [ CMP_CUTOUT_WIDTH_PCT, 60 ],
            [ CMP_CUTOUT_HEIGHT_PCT, 60 ],
          ]
        ],                            
      ]
    ],
  ];


MakeAll();
